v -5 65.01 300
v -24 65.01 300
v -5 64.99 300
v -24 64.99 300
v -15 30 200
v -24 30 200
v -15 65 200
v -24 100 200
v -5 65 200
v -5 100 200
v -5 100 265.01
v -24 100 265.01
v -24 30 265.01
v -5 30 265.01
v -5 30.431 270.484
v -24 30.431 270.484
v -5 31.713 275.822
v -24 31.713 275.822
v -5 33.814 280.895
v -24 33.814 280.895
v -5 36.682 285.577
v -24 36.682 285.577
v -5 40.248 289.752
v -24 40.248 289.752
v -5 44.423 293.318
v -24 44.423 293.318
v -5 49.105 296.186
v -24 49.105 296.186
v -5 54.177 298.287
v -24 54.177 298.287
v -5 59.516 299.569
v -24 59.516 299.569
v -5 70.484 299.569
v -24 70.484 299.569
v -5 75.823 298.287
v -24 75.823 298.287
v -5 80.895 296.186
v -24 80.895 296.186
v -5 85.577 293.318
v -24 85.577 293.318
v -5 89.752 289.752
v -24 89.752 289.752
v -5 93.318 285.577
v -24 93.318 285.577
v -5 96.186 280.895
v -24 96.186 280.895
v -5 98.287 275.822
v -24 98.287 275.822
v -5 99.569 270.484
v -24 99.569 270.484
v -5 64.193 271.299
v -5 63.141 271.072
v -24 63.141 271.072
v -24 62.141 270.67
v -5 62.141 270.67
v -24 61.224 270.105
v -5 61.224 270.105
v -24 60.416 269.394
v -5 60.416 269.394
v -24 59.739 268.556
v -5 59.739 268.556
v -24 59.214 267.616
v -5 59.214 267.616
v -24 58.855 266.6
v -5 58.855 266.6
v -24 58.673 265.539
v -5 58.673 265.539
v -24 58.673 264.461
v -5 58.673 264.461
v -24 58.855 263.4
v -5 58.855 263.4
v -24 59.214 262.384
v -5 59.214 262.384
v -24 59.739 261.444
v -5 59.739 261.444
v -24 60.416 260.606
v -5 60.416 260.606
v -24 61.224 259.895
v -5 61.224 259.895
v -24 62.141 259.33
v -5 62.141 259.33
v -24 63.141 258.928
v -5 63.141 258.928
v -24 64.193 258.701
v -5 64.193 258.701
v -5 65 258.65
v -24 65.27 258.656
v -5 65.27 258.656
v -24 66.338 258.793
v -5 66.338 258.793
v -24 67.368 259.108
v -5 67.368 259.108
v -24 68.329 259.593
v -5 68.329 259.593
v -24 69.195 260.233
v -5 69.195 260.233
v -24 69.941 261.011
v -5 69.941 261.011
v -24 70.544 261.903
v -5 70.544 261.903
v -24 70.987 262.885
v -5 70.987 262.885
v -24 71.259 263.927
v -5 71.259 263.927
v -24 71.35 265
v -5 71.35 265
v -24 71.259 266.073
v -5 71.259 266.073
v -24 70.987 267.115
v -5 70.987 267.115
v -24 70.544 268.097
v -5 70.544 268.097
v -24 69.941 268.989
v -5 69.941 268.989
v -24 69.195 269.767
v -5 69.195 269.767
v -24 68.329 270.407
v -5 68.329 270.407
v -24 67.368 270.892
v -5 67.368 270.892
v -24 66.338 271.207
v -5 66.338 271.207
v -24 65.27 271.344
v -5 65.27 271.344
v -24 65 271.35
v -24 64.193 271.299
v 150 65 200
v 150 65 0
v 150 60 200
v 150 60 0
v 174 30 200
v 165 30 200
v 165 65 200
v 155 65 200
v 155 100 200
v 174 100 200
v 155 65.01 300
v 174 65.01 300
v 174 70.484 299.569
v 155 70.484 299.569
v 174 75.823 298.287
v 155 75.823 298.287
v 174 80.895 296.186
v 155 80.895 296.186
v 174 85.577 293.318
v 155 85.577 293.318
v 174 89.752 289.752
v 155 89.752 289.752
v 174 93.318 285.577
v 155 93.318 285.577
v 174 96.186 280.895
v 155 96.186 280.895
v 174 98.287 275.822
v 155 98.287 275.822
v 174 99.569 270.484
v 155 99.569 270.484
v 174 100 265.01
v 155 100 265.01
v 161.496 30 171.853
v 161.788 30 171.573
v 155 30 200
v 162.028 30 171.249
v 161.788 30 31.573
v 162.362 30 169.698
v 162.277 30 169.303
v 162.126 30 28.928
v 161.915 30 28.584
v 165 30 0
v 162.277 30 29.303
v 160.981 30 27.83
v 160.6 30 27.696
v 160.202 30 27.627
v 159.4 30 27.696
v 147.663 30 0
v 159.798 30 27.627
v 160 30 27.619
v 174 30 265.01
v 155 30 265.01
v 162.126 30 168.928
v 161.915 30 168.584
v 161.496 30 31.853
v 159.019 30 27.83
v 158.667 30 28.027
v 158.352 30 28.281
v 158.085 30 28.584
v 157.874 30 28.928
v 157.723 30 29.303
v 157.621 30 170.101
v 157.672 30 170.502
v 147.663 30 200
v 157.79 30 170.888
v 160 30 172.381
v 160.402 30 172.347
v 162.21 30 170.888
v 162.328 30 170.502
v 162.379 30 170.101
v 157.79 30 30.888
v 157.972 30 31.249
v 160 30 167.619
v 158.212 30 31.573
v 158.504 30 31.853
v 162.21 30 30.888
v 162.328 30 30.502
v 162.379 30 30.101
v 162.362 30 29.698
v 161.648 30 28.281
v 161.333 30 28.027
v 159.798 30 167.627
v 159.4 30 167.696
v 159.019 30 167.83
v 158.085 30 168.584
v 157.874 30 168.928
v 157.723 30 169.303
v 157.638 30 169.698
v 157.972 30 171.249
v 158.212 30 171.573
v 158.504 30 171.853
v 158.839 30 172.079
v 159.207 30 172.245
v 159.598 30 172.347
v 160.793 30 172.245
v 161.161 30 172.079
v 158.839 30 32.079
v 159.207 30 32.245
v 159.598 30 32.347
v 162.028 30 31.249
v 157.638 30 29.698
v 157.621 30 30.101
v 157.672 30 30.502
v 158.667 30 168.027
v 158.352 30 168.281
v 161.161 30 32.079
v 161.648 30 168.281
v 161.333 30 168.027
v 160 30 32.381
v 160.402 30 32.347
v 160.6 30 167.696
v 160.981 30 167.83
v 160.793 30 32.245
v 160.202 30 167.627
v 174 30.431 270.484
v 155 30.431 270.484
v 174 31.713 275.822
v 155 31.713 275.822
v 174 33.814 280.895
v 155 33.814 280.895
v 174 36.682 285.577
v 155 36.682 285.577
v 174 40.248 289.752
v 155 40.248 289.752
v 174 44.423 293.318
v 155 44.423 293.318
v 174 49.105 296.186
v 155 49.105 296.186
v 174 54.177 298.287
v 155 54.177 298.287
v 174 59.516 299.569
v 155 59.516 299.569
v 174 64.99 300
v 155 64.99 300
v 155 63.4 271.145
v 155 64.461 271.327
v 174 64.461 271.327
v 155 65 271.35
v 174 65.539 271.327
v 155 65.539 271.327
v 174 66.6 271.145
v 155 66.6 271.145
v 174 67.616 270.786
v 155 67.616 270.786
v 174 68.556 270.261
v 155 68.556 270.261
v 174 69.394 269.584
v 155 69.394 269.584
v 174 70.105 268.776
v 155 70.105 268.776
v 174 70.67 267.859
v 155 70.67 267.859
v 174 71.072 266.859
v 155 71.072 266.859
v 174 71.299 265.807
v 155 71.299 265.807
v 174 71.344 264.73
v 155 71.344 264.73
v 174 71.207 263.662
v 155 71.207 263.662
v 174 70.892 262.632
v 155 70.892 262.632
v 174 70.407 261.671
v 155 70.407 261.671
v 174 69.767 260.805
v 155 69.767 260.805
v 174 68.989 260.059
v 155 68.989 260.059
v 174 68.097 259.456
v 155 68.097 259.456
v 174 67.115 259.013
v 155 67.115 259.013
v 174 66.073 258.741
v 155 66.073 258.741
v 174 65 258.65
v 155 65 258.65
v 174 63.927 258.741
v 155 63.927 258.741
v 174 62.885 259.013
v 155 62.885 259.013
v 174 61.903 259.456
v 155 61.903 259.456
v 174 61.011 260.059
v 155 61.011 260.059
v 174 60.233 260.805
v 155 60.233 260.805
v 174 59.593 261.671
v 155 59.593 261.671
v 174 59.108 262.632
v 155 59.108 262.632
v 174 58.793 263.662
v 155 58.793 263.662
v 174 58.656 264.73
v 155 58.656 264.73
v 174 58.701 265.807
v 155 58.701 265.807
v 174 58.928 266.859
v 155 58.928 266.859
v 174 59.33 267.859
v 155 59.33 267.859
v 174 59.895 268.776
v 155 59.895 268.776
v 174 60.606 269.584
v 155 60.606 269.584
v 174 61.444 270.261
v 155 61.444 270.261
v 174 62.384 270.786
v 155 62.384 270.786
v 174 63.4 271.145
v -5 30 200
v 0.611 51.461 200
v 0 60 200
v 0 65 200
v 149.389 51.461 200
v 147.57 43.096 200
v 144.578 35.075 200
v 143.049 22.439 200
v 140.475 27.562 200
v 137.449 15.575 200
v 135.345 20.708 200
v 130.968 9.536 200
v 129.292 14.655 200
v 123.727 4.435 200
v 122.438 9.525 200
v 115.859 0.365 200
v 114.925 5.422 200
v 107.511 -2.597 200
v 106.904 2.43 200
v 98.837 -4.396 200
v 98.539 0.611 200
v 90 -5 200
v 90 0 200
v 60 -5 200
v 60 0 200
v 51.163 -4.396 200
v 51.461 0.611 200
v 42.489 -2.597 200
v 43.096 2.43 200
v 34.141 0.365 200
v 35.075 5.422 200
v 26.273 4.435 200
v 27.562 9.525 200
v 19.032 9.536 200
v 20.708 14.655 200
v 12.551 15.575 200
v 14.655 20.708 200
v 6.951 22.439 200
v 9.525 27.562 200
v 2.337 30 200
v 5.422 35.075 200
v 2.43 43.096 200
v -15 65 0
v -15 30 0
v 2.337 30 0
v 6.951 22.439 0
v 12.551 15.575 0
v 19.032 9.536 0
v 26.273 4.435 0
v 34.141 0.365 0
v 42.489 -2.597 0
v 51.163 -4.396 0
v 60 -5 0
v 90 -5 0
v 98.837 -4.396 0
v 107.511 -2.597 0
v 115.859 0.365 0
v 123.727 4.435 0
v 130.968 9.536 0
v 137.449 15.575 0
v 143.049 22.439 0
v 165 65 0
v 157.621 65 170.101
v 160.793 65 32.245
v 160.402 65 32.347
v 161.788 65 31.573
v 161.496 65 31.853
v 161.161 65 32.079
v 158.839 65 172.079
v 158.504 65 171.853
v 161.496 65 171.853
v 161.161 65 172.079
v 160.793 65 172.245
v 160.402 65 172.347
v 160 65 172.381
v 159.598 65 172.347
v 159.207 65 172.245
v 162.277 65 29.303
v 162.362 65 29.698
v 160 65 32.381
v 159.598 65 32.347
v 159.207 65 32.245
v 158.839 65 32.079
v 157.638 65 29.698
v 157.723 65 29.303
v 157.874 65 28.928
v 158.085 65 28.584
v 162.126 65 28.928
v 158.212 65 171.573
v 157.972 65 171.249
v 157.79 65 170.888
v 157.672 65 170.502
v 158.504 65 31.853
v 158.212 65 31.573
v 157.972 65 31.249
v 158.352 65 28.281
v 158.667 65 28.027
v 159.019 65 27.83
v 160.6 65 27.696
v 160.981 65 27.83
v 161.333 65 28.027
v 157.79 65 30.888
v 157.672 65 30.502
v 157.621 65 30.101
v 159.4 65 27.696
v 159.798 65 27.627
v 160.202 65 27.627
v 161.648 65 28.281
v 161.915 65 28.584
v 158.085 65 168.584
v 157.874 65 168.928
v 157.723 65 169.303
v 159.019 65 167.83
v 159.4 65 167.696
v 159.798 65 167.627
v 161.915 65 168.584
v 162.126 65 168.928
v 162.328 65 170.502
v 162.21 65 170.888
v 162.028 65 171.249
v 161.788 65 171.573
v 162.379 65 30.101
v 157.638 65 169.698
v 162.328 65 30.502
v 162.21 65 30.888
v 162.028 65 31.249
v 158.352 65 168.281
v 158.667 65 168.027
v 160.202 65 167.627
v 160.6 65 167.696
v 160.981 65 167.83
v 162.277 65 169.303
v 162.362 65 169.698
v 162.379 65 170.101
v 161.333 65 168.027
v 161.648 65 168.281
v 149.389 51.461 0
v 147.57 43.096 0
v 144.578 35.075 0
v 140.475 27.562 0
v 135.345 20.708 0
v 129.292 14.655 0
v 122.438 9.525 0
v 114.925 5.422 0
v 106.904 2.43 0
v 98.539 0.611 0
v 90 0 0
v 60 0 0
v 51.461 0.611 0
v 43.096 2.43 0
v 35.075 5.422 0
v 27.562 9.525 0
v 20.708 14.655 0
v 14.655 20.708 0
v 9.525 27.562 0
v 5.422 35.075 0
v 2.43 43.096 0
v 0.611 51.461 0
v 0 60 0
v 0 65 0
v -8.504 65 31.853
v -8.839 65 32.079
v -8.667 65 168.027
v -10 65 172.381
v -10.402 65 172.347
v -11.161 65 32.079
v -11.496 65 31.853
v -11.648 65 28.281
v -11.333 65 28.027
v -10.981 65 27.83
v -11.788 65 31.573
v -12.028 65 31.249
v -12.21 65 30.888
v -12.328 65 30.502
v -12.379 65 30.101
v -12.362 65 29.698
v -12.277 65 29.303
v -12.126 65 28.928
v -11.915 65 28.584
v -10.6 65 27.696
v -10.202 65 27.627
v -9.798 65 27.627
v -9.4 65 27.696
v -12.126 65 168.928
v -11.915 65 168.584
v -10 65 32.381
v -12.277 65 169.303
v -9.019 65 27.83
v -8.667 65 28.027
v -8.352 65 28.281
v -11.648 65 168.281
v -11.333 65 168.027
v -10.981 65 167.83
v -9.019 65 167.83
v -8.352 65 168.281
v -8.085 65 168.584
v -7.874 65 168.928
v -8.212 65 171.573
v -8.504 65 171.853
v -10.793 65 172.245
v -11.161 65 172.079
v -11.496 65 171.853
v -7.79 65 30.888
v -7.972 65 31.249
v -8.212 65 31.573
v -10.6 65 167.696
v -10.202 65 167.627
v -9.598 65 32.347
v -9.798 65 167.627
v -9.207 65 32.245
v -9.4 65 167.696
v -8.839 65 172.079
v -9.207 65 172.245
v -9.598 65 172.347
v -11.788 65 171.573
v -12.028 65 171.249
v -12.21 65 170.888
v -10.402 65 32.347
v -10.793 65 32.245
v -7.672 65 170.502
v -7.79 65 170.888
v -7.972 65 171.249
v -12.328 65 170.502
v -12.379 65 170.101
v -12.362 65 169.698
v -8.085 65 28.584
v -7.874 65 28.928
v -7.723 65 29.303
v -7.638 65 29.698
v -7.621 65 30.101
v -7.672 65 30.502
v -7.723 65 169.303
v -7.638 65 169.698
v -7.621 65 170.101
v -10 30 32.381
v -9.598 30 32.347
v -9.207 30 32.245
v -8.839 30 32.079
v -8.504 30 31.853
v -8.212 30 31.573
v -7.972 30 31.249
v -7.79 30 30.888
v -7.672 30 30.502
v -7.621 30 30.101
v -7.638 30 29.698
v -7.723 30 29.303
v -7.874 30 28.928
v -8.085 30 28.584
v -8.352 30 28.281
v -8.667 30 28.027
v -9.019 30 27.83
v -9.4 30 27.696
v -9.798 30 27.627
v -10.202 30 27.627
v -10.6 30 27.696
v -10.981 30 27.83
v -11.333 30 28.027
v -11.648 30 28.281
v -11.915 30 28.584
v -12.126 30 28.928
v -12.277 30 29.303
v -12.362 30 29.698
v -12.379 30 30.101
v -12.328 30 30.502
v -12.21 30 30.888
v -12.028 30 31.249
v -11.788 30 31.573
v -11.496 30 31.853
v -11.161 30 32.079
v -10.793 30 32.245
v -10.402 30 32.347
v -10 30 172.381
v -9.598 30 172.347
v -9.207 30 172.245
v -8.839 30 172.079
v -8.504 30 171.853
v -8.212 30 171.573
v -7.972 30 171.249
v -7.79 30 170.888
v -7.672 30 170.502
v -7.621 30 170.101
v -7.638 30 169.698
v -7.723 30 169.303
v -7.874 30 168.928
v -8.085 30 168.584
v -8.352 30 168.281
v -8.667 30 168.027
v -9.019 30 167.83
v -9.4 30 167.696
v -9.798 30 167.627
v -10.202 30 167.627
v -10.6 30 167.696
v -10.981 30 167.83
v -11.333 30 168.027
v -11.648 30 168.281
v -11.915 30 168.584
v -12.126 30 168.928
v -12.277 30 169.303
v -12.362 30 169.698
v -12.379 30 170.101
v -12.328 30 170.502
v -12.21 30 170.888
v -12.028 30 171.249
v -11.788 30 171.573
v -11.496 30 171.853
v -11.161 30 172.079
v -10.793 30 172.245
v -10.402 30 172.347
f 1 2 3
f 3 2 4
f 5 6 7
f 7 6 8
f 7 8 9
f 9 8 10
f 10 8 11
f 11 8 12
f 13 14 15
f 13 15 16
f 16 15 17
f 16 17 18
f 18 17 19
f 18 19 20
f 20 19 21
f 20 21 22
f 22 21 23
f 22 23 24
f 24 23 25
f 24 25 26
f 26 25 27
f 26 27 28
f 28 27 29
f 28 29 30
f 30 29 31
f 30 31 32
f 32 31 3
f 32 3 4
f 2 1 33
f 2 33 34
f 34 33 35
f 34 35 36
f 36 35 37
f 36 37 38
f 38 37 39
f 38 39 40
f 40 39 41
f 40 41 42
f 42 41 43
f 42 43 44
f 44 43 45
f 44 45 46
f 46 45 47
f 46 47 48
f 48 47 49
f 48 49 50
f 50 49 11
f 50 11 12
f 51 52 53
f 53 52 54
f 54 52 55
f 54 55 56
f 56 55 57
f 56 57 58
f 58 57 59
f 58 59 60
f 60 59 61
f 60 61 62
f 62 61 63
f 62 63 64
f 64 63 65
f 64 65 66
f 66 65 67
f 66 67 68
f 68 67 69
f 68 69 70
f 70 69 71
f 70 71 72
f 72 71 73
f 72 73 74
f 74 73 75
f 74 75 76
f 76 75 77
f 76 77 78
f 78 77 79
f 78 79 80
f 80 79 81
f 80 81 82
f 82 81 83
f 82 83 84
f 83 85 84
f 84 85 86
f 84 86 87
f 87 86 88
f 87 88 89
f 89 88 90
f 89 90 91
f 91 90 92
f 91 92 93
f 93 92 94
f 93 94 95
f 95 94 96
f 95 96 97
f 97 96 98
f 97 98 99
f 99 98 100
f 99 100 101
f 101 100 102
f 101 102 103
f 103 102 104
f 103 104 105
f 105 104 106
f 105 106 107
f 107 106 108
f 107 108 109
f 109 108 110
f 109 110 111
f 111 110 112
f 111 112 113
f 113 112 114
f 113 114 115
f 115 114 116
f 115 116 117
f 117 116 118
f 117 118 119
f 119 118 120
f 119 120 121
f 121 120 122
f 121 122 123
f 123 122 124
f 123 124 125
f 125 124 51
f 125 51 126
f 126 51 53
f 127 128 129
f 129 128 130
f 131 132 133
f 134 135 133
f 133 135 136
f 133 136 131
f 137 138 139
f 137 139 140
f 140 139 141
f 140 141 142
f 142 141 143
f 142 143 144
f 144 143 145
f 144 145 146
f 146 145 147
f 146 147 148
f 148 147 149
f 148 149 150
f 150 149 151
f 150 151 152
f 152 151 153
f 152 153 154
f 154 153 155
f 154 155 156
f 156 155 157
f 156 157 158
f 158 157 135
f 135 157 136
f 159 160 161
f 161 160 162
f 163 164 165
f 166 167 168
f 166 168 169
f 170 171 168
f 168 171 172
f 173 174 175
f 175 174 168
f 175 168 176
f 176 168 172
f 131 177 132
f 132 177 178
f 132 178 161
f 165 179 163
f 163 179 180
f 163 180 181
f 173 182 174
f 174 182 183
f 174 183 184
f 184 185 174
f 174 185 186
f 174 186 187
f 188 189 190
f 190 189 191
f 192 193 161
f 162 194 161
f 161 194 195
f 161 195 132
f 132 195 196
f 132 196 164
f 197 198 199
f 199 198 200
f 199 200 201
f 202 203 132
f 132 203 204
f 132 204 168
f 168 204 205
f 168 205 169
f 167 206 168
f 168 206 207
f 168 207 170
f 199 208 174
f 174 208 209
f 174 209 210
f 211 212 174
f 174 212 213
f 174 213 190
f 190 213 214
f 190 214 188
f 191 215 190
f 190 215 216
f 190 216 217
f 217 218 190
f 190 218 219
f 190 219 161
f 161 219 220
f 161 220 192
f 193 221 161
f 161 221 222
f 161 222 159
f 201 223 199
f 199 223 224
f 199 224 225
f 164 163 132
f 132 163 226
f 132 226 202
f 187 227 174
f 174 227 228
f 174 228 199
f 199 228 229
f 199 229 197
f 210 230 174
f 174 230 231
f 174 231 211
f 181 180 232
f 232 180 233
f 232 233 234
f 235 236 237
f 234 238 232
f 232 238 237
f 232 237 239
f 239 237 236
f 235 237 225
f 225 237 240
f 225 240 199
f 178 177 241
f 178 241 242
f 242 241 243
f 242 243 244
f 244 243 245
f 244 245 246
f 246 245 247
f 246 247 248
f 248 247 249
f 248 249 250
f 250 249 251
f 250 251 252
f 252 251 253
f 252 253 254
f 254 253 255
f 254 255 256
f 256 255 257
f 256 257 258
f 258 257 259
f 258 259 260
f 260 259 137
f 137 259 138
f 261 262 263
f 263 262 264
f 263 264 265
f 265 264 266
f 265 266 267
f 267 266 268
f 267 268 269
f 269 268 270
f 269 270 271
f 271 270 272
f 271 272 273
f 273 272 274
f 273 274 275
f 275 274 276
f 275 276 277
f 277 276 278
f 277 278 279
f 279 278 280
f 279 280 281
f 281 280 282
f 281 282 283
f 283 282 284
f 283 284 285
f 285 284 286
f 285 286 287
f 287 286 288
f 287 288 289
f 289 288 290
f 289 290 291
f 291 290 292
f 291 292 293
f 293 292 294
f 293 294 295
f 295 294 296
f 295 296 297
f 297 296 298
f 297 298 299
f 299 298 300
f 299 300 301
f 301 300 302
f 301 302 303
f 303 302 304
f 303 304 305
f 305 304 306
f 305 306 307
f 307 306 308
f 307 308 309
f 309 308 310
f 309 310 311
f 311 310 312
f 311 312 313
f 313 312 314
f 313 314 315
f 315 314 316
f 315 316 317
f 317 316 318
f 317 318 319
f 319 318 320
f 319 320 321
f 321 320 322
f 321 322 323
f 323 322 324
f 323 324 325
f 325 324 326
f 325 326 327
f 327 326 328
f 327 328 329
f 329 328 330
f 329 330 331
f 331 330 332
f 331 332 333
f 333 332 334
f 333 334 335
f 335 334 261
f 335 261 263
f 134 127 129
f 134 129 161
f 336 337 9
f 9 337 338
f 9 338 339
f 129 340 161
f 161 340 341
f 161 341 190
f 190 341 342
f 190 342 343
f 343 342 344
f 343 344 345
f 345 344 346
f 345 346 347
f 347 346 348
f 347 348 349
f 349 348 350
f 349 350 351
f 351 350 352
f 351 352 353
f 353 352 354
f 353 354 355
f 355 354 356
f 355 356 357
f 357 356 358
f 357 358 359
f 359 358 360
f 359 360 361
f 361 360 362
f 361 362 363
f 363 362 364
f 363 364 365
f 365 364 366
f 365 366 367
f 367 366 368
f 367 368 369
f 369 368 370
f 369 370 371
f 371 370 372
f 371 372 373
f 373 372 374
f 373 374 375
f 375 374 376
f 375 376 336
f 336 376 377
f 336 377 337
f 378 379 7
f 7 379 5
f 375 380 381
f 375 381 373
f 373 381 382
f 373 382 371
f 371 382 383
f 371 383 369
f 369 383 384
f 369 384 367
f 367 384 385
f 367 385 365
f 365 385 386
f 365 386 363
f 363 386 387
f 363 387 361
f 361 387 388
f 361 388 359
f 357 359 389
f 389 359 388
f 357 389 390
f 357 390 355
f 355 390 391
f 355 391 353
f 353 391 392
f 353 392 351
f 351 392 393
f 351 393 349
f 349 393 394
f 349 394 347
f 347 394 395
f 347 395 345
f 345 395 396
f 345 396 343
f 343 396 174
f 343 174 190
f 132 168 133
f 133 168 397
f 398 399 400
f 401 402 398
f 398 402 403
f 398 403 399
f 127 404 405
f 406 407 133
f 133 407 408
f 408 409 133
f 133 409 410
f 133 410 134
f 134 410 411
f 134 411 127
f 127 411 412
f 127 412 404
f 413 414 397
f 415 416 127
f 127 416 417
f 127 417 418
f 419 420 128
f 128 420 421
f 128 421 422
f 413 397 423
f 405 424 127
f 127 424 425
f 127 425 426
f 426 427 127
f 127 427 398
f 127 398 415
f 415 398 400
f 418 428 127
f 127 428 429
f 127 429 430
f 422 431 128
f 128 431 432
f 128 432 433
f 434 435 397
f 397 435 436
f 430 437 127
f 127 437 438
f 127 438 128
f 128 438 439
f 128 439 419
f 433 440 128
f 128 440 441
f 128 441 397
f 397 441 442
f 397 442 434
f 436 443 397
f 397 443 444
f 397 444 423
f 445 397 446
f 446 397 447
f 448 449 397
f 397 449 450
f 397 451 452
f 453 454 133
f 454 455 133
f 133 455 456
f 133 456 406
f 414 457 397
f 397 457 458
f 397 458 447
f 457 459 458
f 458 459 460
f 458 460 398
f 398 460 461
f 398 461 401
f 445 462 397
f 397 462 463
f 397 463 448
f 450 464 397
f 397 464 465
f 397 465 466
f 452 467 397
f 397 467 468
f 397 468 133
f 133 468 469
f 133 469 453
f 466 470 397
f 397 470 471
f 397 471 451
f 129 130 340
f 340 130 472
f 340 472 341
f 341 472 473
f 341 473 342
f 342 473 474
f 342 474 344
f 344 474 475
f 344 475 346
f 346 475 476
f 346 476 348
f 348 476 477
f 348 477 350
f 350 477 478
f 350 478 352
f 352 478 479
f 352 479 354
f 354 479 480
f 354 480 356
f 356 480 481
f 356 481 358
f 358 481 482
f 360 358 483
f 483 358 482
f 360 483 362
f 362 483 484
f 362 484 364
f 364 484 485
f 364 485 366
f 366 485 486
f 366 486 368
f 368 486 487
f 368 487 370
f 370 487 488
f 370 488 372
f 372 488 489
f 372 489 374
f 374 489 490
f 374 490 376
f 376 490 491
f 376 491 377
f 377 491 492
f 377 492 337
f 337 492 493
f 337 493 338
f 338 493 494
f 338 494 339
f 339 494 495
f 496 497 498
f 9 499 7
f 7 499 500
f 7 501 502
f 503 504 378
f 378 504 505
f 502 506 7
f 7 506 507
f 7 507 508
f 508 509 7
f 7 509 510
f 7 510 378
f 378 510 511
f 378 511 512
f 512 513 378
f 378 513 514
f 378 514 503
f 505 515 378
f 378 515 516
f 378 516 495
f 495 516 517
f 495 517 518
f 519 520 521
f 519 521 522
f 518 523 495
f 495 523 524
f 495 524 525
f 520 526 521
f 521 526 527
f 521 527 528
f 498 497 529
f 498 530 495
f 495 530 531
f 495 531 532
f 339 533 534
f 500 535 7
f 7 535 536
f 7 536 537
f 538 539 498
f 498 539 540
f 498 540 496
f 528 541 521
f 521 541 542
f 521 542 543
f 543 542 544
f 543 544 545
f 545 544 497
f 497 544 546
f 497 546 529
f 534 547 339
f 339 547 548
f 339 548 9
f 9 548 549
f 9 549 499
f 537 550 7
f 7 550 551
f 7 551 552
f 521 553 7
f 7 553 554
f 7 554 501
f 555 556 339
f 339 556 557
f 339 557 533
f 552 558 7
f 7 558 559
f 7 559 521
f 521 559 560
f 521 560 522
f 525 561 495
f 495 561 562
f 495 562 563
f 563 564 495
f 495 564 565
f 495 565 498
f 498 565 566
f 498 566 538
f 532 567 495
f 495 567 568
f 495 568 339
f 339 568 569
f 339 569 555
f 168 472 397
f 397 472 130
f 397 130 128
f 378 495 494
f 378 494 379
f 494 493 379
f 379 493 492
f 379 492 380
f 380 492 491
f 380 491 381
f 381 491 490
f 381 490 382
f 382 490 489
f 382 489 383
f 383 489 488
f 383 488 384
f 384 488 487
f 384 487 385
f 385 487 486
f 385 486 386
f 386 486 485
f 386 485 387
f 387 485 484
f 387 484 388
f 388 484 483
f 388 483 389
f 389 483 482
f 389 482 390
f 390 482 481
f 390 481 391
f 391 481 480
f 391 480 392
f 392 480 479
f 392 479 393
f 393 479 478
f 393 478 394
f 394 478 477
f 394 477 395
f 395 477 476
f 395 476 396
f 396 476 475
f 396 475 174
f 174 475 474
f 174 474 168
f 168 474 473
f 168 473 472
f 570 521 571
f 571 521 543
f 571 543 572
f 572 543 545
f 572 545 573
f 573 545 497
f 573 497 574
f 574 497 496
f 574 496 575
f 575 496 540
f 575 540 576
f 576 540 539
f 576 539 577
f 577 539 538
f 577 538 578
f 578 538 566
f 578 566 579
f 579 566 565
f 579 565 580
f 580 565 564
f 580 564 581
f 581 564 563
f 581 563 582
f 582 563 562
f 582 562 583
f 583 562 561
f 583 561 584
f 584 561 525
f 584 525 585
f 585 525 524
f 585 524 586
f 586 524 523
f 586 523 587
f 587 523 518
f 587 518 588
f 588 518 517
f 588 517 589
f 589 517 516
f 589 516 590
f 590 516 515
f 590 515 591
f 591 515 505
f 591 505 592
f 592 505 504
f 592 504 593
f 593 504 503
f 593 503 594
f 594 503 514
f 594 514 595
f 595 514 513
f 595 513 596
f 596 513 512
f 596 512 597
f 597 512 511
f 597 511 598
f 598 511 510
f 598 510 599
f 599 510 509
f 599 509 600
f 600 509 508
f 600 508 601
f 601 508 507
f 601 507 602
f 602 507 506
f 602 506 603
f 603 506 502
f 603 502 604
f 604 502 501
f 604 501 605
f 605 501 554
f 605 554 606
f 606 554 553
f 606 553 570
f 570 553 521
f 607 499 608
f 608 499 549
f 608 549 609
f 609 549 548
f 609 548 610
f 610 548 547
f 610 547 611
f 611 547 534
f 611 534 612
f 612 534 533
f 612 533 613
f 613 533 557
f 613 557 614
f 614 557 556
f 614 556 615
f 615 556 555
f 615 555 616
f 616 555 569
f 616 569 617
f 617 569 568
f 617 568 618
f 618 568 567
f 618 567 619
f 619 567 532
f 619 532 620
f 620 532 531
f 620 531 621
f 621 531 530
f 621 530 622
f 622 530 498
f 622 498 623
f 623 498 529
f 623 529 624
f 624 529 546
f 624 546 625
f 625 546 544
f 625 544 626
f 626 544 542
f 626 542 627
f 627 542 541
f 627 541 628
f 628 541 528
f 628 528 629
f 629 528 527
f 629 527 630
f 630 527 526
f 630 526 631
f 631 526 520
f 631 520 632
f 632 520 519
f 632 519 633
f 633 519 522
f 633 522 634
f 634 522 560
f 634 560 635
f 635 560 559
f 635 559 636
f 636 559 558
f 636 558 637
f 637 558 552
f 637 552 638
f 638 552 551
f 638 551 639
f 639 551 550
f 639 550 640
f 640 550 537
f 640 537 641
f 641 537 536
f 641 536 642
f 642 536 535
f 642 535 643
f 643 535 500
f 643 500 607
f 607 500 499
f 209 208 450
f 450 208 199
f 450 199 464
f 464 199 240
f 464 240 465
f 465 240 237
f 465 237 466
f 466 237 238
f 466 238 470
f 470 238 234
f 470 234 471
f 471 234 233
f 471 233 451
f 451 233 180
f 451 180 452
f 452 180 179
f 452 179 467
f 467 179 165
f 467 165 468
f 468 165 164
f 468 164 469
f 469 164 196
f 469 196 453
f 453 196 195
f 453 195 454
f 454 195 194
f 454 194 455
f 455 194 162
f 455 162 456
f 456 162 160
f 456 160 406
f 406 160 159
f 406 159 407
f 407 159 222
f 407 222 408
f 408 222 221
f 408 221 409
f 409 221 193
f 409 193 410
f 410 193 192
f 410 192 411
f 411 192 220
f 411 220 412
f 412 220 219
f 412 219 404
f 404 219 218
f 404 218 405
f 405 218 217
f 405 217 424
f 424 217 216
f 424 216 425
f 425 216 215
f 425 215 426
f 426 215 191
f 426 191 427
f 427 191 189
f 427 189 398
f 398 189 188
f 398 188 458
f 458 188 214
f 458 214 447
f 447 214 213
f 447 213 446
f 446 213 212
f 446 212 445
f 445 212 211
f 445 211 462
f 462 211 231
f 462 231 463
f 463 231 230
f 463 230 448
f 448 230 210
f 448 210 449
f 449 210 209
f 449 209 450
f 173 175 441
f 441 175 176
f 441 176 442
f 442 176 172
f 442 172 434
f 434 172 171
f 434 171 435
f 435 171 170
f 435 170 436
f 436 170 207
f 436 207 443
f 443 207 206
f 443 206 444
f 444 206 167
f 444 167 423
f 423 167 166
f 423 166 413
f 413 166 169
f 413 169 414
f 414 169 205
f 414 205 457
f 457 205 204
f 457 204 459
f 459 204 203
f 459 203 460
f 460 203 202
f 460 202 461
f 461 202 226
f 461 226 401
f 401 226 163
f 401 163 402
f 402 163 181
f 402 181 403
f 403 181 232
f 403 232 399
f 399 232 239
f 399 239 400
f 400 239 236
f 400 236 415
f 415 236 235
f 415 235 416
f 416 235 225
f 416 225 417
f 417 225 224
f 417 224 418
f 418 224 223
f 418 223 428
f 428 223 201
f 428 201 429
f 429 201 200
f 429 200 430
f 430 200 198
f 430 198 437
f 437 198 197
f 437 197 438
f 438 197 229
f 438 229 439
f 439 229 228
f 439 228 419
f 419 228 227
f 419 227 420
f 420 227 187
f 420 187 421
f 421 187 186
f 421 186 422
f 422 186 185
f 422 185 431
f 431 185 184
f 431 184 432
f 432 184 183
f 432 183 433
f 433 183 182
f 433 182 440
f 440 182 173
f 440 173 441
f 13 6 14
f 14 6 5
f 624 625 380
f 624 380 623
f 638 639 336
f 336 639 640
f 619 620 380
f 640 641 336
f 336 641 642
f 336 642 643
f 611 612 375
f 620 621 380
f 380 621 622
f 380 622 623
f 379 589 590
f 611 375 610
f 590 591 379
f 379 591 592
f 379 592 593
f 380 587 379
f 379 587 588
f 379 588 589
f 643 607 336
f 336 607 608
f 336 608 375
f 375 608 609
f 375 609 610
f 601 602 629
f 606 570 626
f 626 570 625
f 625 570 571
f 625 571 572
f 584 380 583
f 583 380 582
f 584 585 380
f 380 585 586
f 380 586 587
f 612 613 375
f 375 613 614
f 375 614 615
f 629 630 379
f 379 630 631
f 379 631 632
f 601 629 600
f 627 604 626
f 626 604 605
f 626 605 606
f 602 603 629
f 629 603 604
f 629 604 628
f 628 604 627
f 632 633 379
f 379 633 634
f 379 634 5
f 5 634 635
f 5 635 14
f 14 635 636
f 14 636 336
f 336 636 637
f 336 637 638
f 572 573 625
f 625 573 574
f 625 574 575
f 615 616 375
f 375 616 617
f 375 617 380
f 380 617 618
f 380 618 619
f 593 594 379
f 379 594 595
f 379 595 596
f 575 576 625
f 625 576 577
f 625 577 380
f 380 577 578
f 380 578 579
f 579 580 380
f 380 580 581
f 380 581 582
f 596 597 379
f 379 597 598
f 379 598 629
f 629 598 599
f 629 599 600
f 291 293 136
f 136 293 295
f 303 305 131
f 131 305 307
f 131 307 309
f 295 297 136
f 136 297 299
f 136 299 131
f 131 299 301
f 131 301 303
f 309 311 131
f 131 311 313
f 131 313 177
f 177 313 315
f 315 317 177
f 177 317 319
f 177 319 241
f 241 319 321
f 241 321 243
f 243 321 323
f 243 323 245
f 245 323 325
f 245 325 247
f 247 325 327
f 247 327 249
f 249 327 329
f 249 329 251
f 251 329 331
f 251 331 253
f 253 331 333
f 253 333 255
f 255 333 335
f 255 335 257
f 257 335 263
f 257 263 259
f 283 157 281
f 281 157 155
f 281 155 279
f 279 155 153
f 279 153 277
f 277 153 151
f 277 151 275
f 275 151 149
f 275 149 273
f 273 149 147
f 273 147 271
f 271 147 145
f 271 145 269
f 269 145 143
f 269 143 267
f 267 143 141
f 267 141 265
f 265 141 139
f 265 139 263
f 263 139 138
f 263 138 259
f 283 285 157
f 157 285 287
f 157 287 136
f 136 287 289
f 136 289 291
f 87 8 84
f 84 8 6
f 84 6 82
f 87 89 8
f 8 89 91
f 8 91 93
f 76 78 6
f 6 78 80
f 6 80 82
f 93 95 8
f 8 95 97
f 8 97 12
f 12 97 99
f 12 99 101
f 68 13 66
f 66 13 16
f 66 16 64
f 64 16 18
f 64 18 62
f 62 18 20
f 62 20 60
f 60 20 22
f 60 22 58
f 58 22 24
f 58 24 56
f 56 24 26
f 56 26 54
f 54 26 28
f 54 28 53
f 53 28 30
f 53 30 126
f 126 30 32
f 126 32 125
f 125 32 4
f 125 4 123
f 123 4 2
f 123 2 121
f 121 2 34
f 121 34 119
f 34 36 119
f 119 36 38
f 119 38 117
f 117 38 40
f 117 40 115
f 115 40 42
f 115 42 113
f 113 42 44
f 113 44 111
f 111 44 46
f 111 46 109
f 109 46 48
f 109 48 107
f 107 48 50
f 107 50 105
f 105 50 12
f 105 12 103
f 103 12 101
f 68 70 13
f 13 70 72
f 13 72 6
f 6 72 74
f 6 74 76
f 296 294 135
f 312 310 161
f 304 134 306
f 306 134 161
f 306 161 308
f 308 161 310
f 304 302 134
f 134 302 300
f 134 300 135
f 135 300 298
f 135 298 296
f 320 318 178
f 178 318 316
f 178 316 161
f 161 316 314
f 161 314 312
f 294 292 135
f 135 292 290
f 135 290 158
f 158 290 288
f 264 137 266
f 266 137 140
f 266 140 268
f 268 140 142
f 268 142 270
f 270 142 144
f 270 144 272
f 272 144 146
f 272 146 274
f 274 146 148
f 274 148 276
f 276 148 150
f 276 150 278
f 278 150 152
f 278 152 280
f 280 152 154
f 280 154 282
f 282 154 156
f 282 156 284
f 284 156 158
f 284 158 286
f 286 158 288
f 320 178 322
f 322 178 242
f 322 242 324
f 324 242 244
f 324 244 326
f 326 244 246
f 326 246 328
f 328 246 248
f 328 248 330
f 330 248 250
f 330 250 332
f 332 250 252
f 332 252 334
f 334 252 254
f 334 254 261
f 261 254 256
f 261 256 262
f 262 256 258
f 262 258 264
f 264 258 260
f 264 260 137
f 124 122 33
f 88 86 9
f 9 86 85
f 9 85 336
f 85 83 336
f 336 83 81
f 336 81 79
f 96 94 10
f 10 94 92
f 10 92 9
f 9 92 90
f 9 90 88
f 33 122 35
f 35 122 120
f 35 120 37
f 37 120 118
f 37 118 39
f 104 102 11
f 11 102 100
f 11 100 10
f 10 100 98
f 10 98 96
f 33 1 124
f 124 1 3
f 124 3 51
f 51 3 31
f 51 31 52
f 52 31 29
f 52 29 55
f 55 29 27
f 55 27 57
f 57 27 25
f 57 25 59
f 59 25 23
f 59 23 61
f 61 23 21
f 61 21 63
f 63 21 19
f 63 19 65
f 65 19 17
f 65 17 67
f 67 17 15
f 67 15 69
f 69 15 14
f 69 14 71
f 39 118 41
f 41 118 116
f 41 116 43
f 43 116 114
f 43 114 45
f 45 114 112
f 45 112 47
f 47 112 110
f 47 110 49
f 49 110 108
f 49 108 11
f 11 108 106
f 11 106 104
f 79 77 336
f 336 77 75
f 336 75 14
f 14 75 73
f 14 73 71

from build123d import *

# Parameters (mm, degrees)
SKETCH1_W           = 10
SKETCH1_H           = 5
BOSS_EXTRUDE1_DEPTH = 200
SKETCH2_R           = 2.38125
CUT_EXTRUDE1_DEPTH  = 200
SKETCH3_W           = 10
SKETCH3_H           = 30
SKETCH3_H_2         = 5
BOSS_EXTRUDE2_DEPTH = 100
CUT_EXTRUDE2_DEPTH  = 100
BOSS_EXTRUDE5_START = -15
SKETCH5_R           = 6.35
BOSS_EXTRUDE5_DEPTH = 15
SKETCH6_R           = 6.35
BOSS_EXTRUDE6_DEPTH = 5
BOSS_EXTRUDE7_START = -200
BOSS_EXTRUDE7_DEPTH = 200
SKETCH8_R           = 6.35
BOSS_EXTRUDE8_DEPTH = 9
SKETCH9_R           = 6.35
BOSS_EXTRUDE9_DEPTH = 9
SKETCH10_R          = 6.35
CUT_EXTRUDE3_DEPTH  = 5
SKETCH11_R          = 6.35
CUT_EXTRUDE4_DEPTH  = 5
SKETCH12_R          = 2.38125
CUT_EXTRUDE5_DEPTH  = 66


with BuildPart() as part:
    # Sketch1 → Boss-Extrude1 (new body)
    with BuildSketch(Plane.XY):
        with Locations((-10, 62.5)):
            Rectangle(SKETCH1_W, SKETCH1_H)
        with BuildLine():
            Line((90, 0), (60, 0))
            ThreePointArc((60, 0), (17.573593, 17.573593), (0, 60))
            Line((0, 60), (0, 65))
            Line((0, 65), (-5, 65))
            Line((-5, 65), (-5, 60))
            ThreePointArc((-5, 60), (14.038059, 14.038059), (60, -5))
            Line((60, -5), (90, -5))
            ThreePointArc((90, -5), (135.961941, 14.038059), (155, 60))
            Line((155, 60), (155, 65))
            Line((155, 65), (150, 65))
            Line((150, 65), (150, 60))
            ThreePointArc((150, 60), (132.426407, 17.573593), (90, 0))
        make_face()
        with Locations((160, 62.5)):
            Rectangle(SKETCH1_W, SKETCH1_H)
    extrude(amount=BOSS_EXTRUDE1_DEPTH)

    # Sketch2 → Cut-Extrude1 (cut)
    with BuildSketch(Plane(origin=(0, 65, 0), x_dir=(1, 0, 0), z_dir=(0, 1, 0))):
        with Locations((-10, -170)):
            Circle(SKETCH2_R)
        with Locations((-10, -30)):
            Circle(SKETCH2_R)
        with Locations((160, -30)):
            Circle(SKETCH2_R)
        with Locations((160, -170)):
            Circle(SKETCH2_R)
    extrude(amount=-CUT_EXTRUDE1_DEPTH, mode=Mode.SUBTRACT)

    # Sketch3 → Boss-Extrude2 (add)
    with BuildSketch(Plane.XY.offset(200)):
        with Locations((-10, 45)):
            Rectangle(SKETCH3_W, SKETCH3_H)
        with Locations((-10, 62.5)):
            Rectangle(SKETCH3_W, SKETCH3_H_2)
        with Locations((-10, 67.5)):
            Rectangle(SKETCH3_W, SKETCH3_H_2)
        with Locations((-10, 85)):
            Rectangle(SKETCH3_W, SKETCH3_H)
    extrude(amount=BOSS_EXTRUDE2_DEPTH)

    # Sketch4 → Cut-Extrude2 (cut)
    with BuildSketch(Plane(origin=(-5, 0, 0), x_dir=(0, 0, -1), z_dir=(1, 0, 0))):
        with BuildLine():
            ThreePointArc((-260.509872, 69.490128), (-269.490128, 69.490128), (-269.490128, 60.509872))
            Line((-269.490128, 60.509872), (-260.509872, 69.490128))
        make_face()
        with BuildLine():
            Line((-260.509872, 69.490128), (-269.490128, 60.509872))
            ThreePointArc((-269.490128, 60.509872), (-262.56996, 59.133365), (-258.65, 65))
            ThreePointArc((-258.65, 65), (-259.133365, 67.43004), (-260.509872, 69.490128))
        make_face()
        with BuildLine():
            Line((-300, 30), (-265.01, 30))
            ThreePointArc((-265.01, 30), (-278.400093, 32.663455), (-289.751666, 40.248334))
            Line((-289.751666, 40.248334), (-300, 30))
        make_face()
        with BuildLine():
            Line((-300, 30), (-289.751666, 40.248334))
            ThreePointArc((-289.751666, 40.248334), (-297.336545, 51.599907), (-300, 64.99))
            Line((-300, 64.99), (-300, 30))
        make_face()
        with BuildLine():
            ThreePointArc((-300, 65.01), (-289.751666, 89.751666), (-265.01, 100))
            Line((-265.01, 100), (-300, 100))
            Line((-300, 100), (-300, 65.01))
        make_face()
    extrude(amount=-CUT_EXTRUDE2_DEPTH, mode=Mode.SUBTRACT)

    # Sketch5 → Boss-Extrude5 (add)
    with BuildSketch(Plane(origin=(165, 0, 0), x_dir=(0, 0, -1), z_dir=(1, 0, 0)).offset(BOSS_EXTRUDE5_START)):
        with BuildLine():
            Line((-300, 65.01), (-300, 64.99))
            ThreePointArc((-300, 64.99), (-289.751666, 40.248334), (-265.01, 30))
            Line((-265.01, 30), (-200, 30))
            Line((-200, 30), (-200, 60))
            Line((-200, 60), (-200, 65))
            Line((-200, 65), (-200, 100))
            Line((-200, 100), (-265.01, 100))
            ThreePointArc((-265.01, 100), (-289.751666, 89.751666), (-300, 65.01))
        make_face()
        with Locations((-265, 65)):
            Circle(SKETCH5_R, mode=Mode.SUBTRACT)
    extrude(amount=BOSS_EXTRUDE5_DEPTH)

    # Sketch6 → Boss-Extrude6 (add)
    with BuildSketch(Plane(origin=(-5, 0, 0), x_dir=(0, 0, -1), z_dir=(1, 0, 0))):
        with BuildLine():
            Line((-300, 65.01), (-300, 64.99))
            ThreePointArc((-300, 64.99), (-289.751666, 40.248334), (-265.01, 30))
            Line((-265.01, 30), (-200, 30))
            Line((-200, 30), (-200, 60))
            Line((-200, 60), (-200, 65))
            Line((-200, 65), (-200, 100))
            Line((-200, 100), (-265.01, 100))
            ThreePointArc((-265.01, 100), (-289.751666, 89.751666), (-300, 65.01))
        make_face()
        with Locations((-265, 65)):
            Circle(SKETCH6_R, mode=Mode.SUBTRACT)
    extrude(amount=BOSS_EXTRUDE6_DEPTH)

    # Sketch7 → Boss-Extrude7 (add)
    with BuildSketch(Plane(origin=(0, 0, 0), x_dir=(-1, 0, 0), z_dir=(0, 0, -1)).offset(BOSS_EXTRUDE7_START)):
        with BuildLine():
            Line((-150, 35), (-150, 30))
            Line((-150, 30), (-147.662813, 30))
            ThreePointArc((-147.662813, 30), (-148.8845, 32.475182), (-150, 35))
        make_face()
        with BuildLine():
            Line((-165, 60), (-165, 30))
            Line((-165, 30), (-150, 30))
            Line((-150, 30), (-150, 35))
            ThreePointArc((-150, 35), (-153.737744, 47.252451), (-155, 60))
            Line((-155, 60), (-165, 60))
        make_face()
        with BuildLine():
            ThreePointArc((0, 35), (-1.1155, 32.475182), (-2.337187, 30))
            Line((-2.337187, 30), (0, 30))
            Line((0, 30), (0, 35))
        make_face()
        with BuildLine():
            Line((0, 35), (0, 30))
            Line((0, 30), (5, 30))
            Line((5, 30), (15, 30))
            Line((15, 30), (15, 60))
            Line((15, 60), (5, 60))
            ThreePointArc((5, 60), (3.737744, 47.252451), (0, 35))
        make_face()
    extrude(amount=BOSS_EXTRUDE7_DEPTH)

    # Sketch8 → Boss-Extrude8 (add)
    with BuildSketch(Plane(origin=(165, 0, 0), x_dir=(0, 0, -1), z_dir=(1, 0, 0))):
        with BuildLine():
            Line((-200, 65), (-200, 100))
            Line((-200, 100), (-265.01, 100))
            ThreePointArc((-265.01, 100), (-289.751666, 89.751666), (-300, 65.01))
            Line((-300, 65.01), (-300, 64.99))
            ThreePointArc((-300, 64.99), (-289.751666, 40.248334), (-265.01, 30))
            Line((-265.01, 30), (-200, 30))
            Line((-200, 30), (-200, 65))
        make_face()
        with Locations((-265, 65)):
            Circle(SKETCH8_R, mode=Mode.SUBTRACT)
    extrude(amount=BOSS_EXTRUDE8_DEPTH)

    # Sketch9 → Boss-Extrude9 (add)
    with BuildSketch(Plane.ZY.offset(15)):
        with BuildLine():
            Line((265.01, 100), (200, 100))
            Line((200, 100), (200, 65))
            Line((200, 65), (200, 30))
            Line((200, 30), (265.01, 30))
            ThreePointArc((265.01, 30), (289.751666, 40.248334), (300, 64.99))
            Line((300, 64.99), (300, 65.01))
            ThreePointArc((300, 65.01), (289.751666, 89.751666), (265.01, 100))
        make_face()
        with Locations((265, 65)):
            Circle(SKETCH9_R, mode=Mode.SUBTRACT)
    extrude(amount=BOSS_EXTRUDE9_DEPTH)

    # Sketch10 → Cut-Extrude3 (cut)
    with BuildSketch(Plane.ZY.offset(-150)):
        with BuildLine():
            Line((200, 60), (200, 65))
            Line((200, 65), (200, 100))
            Line((200, 100), (265.01, 100))
            ThreePointArc((265.01, 100), (289.751666, 89.751666), (300, 65.01))
            Line((300, 65.01), (300, 64.99))
            ThreePointArc((300, 64.99), (289.751666, 40.248334), (265.01, 30))
            Line((265.01, 30), (200, 30))
            Line((200, 30), (200, 60))
        make_face()
        with Locations((265, 65)):
            Circle(SKETCH10_R, mode=Mode.SUBTRACT)
    extrude(amount=-CUT_EXTRUDE3_DEPTH, mode=Mode.SUBTRACT)

    # Sketch11 → Cut-Extrude4 (cut)
    with BuildSketch(Plane(origin=(0, 0, 0), x_dir=(0, 0, -1), z_dir=(1, 0, 0))):
        with BuildLine():
            Line((-200, 60), (-200, 65))
            Line((-200, 65), (-200, 100))
            Line((-200, 100), (-265.01, 100))
            ThreePointArc((-265.01, 100), (-289.751666, 89.751666), (-300, 65.01))
            Line((-300, 65.01), (-300, 64.99))
            ThreePointArc((-300, 64.99), (-289.751666, 40.248334), (-265.01, 30))
            Line((-265.01, 30), (-200, 30))
            Line((-200, 30), (-200, 60))
        make_face()
        with Locations((-265, 65)):
            Circle(SKETCH11_R, mode=Mode.SUBTRACT)
    extrude(amount=-CUT_EXTRUDE4_DEPTH, mode=Mode.SUBTRACT)

    # Sketch12 → Cut-Extrude5 (cut, through all)
    with BuildSketch(Plane(origin=(0, 60, 0), x_dir=(1, 0, 0), z_dir=(0, 1, 0))):
        with Locations((160, -30)):
            Circle(SKETCH12_R)
        with Locations((-10, -170)):
            Circle(SKETCH12_R)
        with Locations((-10, -30)):
            Circle(SKETCH12_R)
        with Locations((160, -170)):
            Circle(SKETCH12_R)
    extrude(amount=-CUT_EXTRUDE5_DEPTH, mode=Mode.SUBTRACT)


solid = part.part
